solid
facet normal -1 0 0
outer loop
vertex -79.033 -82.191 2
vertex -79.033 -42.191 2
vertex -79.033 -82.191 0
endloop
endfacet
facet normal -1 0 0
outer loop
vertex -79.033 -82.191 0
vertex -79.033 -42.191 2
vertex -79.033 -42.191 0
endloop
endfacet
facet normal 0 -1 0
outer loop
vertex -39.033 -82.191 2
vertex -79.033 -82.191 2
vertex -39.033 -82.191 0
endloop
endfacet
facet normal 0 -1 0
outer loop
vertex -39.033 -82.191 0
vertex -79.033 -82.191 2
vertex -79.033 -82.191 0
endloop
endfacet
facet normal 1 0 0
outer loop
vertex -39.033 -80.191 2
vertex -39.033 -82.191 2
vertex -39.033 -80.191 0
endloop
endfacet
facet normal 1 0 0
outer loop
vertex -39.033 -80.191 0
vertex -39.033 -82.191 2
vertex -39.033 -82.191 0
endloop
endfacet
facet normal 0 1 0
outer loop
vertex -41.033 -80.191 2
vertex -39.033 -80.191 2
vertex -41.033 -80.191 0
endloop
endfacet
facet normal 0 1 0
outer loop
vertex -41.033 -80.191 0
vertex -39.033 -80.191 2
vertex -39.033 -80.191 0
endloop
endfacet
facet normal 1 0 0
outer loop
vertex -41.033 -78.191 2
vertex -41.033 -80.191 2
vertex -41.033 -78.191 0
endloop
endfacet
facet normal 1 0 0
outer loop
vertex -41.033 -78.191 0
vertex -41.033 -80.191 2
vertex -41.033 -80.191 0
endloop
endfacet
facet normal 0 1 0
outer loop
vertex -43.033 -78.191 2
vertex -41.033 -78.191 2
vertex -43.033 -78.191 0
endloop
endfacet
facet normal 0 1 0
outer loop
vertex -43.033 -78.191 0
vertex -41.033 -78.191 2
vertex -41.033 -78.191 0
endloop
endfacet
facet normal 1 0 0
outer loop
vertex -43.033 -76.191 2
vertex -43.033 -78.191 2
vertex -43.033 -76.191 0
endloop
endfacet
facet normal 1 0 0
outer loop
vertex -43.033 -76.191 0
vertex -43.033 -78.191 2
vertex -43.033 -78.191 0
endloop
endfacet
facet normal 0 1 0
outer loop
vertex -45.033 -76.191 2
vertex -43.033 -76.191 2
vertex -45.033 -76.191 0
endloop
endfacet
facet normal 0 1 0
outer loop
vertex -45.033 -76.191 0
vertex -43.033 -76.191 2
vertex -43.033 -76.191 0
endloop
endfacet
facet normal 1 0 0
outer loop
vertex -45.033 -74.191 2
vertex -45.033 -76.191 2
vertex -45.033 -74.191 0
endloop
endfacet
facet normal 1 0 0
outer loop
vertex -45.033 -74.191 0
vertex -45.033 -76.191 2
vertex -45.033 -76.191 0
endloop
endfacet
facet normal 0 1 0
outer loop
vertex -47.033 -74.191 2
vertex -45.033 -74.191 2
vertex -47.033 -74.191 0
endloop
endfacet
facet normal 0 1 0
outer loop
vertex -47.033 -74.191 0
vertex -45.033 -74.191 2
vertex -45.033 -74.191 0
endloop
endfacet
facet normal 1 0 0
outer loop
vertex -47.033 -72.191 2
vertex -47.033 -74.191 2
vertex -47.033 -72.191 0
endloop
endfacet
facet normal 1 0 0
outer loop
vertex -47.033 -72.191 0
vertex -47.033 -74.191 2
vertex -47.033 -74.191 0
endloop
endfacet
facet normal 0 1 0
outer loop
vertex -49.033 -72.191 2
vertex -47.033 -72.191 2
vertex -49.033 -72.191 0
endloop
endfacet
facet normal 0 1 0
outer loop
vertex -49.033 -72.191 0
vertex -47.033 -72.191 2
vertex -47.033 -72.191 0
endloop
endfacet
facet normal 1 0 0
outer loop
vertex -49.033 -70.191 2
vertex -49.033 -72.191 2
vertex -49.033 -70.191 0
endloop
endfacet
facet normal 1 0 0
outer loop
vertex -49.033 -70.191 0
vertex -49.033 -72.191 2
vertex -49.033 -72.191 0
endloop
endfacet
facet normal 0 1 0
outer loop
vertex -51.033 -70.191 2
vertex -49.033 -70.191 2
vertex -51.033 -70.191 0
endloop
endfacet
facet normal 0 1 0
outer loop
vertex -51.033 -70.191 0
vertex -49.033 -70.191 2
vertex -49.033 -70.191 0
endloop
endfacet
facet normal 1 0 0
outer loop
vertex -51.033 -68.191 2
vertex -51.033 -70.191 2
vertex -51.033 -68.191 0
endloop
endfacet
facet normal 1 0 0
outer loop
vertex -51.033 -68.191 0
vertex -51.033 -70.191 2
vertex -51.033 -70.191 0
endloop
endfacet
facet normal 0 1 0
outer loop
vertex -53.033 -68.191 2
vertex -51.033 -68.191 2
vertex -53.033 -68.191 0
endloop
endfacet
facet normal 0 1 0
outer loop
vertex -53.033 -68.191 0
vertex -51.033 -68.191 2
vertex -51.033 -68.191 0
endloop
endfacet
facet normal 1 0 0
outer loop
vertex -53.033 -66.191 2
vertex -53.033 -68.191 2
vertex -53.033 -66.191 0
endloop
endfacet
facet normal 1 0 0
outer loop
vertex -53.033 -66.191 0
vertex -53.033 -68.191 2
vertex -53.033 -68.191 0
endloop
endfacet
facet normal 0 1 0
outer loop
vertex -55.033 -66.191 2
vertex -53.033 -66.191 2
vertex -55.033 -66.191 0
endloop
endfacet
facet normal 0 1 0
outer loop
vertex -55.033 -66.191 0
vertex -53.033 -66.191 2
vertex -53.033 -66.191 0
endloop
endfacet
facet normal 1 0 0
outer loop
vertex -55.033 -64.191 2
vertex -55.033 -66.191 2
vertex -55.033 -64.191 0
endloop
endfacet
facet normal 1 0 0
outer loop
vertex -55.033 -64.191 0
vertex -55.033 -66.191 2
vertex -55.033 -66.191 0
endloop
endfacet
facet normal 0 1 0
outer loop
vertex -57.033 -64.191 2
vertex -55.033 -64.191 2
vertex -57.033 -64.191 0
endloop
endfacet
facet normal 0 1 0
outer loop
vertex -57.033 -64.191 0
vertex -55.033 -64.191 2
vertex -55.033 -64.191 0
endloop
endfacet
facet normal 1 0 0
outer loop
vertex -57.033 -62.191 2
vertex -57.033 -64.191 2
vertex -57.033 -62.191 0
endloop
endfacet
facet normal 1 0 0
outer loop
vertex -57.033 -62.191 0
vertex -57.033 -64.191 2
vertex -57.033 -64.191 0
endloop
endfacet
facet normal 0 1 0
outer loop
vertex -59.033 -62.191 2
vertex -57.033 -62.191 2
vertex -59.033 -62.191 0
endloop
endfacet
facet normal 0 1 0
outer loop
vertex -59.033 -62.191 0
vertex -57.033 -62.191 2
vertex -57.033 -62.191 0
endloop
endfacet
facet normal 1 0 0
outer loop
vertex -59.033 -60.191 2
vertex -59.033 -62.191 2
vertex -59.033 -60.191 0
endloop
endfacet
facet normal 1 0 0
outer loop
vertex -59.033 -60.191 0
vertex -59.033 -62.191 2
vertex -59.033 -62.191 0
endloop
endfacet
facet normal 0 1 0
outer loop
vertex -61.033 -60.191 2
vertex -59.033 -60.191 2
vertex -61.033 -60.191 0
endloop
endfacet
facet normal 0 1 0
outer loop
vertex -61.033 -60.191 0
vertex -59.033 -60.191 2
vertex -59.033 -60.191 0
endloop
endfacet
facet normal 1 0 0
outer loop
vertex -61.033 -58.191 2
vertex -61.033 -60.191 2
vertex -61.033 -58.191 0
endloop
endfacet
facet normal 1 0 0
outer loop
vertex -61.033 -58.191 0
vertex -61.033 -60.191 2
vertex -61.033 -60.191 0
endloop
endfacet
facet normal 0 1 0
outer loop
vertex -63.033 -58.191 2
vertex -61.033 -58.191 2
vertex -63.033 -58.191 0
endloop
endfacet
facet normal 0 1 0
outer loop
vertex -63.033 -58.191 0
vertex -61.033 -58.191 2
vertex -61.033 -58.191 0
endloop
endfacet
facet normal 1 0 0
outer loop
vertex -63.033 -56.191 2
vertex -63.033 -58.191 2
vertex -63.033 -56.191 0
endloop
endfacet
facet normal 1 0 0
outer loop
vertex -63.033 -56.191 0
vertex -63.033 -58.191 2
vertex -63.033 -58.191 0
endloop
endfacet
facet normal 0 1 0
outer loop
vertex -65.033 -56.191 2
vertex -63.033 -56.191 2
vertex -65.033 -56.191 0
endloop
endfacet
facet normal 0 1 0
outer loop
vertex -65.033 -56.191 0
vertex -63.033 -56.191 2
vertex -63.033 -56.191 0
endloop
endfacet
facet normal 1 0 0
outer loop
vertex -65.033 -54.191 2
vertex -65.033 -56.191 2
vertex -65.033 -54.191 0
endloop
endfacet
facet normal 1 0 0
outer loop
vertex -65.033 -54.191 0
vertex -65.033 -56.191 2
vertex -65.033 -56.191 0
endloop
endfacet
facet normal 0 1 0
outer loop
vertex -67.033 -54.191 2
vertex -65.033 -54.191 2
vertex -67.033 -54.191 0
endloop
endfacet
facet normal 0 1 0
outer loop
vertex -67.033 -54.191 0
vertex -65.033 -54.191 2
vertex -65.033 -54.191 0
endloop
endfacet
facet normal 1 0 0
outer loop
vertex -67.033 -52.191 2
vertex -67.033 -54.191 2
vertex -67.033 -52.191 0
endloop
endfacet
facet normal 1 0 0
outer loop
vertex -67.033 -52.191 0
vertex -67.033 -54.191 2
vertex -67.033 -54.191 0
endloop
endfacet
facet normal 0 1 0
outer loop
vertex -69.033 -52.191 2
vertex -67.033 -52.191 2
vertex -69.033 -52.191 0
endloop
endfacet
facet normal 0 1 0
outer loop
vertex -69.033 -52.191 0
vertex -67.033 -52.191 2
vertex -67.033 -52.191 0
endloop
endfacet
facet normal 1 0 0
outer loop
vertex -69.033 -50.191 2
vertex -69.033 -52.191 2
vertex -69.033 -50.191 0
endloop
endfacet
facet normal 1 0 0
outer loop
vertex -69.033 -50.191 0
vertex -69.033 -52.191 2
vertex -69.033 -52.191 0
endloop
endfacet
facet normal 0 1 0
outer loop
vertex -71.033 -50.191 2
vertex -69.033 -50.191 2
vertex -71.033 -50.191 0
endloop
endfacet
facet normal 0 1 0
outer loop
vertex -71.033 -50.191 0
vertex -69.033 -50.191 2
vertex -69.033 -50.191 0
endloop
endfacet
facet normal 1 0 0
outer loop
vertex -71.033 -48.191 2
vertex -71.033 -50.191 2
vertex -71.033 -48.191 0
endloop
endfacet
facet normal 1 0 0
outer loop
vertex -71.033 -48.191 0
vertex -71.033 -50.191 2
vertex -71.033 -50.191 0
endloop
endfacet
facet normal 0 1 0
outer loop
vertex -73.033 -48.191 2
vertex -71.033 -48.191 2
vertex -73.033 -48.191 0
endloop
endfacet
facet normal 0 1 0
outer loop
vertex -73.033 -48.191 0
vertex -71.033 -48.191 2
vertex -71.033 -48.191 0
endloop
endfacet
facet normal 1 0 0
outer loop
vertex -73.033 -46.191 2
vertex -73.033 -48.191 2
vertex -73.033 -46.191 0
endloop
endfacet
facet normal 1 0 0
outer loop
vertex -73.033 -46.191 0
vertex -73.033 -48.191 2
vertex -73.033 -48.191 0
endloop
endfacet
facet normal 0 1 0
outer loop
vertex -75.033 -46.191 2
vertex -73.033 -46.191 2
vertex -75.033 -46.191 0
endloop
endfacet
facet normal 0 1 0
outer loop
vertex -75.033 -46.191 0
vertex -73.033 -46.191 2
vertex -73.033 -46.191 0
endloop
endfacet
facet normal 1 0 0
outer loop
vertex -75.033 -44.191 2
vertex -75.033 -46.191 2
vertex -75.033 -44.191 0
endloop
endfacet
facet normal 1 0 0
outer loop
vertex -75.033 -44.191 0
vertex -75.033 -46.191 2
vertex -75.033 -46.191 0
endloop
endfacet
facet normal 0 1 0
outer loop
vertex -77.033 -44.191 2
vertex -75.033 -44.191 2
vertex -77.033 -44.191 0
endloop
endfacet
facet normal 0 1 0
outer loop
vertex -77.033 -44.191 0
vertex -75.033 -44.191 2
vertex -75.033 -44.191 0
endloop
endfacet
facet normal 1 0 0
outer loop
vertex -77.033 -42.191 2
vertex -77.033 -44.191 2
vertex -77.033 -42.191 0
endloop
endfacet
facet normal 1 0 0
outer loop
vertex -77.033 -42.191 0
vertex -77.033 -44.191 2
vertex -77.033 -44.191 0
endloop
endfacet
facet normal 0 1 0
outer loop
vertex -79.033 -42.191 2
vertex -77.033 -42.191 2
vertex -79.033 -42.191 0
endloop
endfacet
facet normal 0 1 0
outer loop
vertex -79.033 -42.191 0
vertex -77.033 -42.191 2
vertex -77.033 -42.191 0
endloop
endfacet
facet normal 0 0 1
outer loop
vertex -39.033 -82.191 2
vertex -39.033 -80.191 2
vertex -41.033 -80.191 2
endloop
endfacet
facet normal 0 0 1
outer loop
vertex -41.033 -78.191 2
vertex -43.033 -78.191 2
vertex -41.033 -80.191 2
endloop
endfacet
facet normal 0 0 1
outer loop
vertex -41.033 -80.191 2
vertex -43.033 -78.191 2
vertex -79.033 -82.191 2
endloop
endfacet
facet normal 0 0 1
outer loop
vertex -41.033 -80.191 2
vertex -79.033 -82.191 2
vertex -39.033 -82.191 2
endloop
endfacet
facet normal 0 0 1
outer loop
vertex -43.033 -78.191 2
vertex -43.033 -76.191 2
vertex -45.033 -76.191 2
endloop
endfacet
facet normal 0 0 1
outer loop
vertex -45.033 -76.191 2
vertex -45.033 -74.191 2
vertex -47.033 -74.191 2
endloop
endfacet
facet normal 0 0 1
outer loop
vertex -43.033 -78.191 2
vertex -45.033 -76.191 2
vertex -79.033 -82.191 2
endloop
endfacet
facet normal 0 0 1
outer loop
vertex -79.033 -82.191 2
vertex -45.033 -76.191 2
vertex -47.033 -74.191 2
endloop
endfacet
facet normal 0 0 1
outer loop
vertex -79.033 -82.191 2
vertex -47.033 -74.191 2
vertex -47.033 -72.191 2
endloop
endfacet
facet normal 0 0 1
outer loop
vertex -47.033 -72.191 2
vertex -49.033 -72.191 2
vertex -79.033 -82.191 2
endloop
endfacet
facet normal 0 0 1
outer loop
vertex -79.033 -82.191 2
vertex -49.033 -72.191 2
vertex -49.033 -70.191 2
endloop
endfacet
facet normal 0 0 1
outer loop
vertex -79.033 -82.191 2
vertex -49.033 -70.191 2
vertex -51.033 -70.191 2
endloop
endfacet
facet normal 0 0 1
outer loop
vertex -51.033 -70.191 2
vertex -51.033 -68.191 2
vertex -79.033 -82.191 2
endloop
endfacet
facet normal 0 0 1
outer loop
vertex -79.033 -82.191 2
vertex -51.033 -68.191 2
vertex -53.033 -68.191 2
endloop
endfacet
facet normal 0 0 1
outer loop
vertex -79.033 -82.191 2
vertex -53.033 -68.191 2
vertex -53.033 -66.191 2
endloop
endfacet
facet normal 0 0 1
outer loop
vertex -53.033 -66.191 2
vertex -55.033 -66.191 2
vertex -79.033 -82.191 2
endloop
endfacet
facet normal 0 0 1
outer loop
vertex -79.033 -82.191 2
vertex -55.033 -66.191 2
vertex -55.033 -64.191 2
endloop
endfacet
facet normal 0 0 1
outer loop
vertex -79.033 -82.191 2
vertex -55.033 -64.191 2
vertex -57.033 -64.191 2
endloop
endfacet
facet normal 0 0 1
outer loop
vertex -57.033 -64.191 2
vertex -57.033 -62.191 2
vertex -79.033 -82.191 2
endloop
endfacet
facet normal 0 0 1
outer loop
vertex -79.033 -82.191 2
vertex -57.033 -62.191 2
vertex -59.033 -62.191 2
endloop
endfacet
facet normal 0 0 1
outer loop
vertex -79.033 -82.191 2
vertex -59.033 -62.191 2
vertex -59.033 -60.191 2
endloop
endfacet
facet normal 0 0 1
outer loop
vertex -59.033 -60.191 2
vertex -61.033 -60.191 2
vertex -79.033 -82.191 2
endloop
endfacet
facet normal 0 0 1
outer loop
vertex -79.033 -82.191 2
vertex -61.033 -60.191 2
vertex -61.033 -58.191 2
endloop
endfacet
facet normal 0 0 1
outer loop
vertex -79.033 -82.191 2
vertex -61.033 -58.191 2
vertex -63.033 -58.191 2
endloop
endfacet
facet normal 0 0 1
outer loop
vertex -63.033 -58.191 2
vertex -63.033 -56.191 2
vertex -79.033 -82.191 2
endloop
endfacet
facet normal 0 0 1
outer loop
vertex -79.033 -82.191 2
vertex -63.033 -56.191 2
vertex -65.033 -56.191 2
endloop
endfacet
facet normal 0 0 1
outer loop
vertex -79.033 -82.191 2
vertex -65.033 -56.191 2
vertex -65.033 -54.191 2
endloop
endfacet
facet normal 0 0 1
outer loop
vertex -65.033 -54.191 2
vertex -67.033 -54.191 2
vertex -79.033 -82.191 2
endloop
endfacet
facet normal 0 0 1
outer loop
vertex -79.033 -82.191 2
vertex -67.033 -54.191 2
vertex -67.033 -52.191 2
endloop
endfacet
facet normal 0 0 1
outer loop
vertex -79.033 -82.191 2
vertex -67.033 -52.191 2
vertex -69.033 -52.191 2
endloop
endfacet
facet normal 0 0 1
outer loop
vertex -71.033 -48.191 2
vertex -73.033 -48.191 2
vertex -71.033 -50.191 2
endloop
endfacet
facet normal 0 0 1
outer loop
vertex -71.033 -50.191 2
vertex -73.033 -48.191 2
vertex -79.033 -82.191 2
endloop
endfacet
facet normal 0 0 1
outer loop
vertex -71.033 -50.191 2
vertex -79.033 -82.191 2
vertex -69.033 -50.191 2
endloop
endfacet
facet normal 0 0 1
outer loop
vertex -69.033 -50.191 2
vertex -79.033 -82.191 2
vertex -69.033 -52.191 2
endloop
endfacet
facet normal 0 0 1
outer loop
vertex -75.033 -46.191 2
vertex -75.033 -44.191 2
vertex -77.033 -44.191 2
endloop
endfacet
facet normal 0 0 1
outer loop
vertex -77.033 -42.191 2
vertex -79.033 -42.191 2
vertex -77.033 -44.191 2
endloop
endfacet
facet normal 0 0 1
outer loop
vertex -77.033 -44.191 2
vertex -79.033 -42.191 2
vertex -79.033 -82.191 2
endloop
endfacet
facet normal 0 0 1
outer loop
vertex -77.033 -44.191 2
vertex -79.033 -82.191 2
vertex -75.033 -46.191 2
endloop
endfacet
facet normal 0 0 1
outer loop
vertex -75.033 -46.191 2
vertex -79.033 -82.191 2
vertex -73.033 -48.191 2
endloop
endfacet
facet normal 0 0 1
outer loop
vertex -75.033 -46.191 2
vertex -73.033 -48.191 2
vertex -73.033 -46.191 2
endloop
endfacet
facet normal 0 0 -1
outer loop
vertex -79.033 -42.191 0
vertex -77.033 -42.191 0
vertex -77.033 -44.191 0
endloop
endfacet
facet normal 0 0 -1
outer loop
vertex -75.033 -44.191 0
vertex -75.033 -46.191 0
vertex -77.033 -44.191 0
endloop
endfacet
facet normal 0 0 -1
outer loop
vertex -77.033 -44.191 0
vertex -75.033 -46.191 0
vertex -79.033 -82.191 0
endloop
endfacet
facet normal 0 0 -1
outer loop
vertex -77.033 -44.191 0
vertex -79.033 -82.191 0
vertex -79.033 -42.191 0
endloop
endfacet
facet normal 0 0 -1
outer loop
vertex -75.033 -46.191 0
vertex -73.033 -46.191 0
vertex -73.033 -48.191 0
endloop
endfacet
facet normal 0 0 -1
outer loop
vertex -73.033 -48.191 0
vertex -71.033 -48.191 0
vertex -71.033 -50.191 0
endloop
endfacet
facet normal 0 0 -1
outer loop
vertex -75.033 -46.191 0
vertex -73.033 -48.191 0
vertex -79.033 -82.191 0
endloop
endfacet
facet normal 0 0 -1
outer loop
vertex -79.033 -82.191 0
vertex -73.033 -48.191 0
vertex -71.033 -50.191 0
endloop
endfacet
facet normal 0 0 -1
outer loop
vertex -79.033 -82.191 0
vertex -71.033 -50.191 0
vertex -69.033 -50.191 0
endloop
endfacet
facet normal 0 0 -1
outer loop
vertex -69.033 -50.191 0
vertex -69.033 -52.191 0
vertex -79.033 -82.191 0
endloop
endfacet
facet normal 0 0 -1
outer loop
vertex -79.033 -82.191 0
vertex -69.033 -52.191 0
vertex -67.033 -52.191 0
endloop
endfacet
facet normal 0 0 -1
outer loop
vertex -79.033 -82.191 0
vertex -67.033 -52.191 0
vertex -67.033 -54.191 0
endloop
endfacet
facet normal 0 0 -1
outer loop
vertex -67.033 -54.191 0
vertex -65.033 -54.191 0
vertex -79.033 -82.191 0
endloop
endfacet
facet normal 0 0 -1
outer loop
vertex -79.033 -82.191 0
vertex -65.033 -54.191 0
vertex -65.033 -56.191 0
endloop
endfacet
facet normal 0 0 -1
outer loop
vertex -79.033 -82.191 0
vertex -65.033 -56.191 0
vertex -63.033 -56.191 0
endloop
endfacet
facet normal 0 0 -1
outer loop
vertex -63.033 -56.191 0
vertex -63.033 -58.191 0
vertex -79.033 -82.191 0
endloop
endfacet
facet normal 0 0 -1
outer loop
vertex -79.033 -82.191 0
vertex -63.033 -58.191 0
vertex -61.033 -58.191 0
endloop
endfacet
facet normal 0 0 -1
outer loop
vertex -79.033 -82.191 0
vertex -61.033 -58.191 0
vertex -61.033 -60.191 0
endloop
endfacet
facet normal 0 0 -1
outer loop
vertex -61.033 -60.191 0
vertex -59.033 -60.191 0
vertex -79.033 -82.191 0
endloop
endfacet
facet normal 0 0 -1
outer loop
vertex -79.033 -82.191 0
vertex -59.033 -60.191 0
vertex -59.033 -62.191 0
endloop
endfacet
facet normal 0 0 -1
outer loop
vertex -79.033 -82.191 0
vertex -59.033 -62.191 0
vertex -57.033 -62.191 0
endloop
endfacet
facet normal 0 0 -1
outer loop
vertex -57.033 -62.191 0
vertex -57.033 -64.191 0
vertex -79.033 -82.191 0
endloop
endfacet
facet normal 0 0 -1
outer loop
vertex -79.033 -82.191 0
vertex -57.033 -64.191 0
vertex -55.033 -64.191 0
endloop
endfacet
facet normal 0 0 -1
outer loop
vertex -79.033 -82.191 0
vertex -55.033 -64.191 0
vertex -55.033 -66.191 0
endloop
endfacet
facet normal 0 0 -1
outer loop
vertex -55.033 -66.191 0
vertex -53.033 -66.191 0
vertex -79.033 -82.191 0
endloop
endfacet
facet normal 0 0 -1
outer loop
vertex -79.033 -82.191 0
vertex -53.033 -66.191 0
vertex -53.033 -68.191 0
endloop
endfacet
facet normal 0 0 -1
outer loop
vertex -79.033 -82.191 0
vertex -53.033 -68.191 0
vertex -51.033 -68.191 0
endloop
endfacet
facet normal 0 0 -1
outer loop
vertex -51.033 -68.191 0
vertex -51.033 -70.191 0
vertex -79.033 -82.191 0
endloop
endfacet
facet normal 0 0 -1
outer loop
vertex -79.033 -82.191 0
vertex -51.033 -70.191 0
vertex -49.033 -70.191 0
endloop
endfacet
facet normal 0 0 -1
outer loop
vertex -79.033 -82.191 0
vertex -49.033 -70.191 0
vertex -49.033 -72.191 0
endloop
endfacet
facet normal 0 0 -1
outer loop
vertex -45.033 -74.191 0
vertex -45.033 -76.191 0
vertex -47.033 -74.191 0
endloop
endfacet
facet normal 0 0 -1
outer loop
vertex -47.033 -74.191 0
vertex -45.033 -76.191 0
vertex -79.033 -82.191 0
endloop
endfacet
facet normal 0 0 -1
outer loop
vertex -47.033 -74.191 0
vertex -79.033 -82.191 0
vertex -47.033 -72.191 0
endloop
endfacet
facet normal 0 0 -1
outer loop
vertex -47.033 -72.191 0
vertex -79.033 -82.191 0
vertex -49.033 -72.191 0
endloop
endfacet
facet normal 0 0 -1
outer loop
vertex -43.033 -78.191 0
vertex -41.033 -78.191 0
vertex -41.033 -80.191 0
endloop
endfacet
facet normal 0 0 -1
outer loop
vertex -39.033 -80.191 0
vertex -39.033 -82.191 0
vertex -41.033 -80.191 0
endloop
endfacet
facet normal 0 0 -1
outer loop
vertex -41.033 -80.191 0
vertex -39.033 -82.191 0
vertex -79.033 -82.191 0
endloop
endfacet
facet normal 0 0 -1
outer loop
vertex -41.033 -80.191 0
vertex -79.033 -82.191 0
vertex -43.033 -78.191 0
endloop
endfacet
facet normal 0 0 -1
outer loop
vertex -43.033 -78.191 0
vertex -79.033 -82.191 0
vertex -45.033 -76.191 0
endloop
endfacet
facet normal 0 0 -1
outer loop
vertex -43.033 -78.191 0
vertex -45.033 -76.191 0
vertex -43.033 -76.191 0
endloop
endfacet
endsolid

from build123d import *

# Parameters (mm, degrees)
BOSS_EXTRUDE1_DEPTH = 2


with BuildPart() as part:
    # Sketch1 → Boss-Extrude1 (new body)
    with BuildSketch(Plane.XY):
        Polygon((-79.033423275, -42.190980898), (-77.033423275, -42.190980898), (-77.033423275, -44.190980898), (-75.033423275, -44.190980898), (-75.033423275, -46.190980898), (-73.033423275, -46.190980898), (-73.033423275, -48.190980898), (-71.033423275, -48.190980898), (-71.033423275, -50.190980898), (-69.033423275, -50.190980898), (-69.033423275, -52.190980898), (-67.033423275, -52.190980898), (-67.033423275, -54.190980898), (-65.033423275, -54.190980898), (-65.033423275, -56.190980898), (-63.033423275, -56.190980898), (-63.033423275, -58.190980898), (-61.033423275, -58.190980898), (-61.033423275, -60.190980898), (-59.033423275, -60.190980898), (-59.033423275, -62.190980898), (-57.033423275, -62.190980898), (-57.033423275, -64.190980898), (-55.033423275, -64.190980898), (-55.033423275, -66.190980898), (-53.033423275, -66.190980898), (-53.033423275, -68.190980898), (-51.033423275, -68.190980898), (-51.033423275, -70.190980898), (-49.033423275, -70.190980898), (-49.033423275, -72.190980898), (-47.033423275, -72.190980898), (-47.033423275, -74.190980898), (-45.033423275, -74.190980898), (-45.033423275, -76.190980898), (-43.033423275, -76.190980898), (-43.033423275, -78.190980898), (-41.033423275, -78.190980898), (-41.033423275, -80.190980898), (-39.033423275, -80.190980898), (-39.033423275, -82.190980898), (-79.033423275, -82.190980898), (-79.033423275, -80.190980898), (-79.033423275, -78.190980898), (-79.033423275, -76.190980898), (-79.033423275, -74.190980898), (-79.033423275, -72.190980898), (-79.033423275, -70.190980898), (-79.033423275, -68.190980898), (-79.033423275, -66.190980898), (-79.033423275, -64.190980898), (-79.033423275, -62.190980898), (-79.033423275, -60.190980898), (-79.033423275, -58.190980898), (-79.033423275, -56.190980898), (-79.033423275, -54.190980898), (-79.033423275, -52.190980898), (-79.033423275, -50.190980898), (-79.033423275, -48.190980898), (-79.033423275, -46.190980898), (-79.033423275, -44.190980898), align=None)
    extrude(amount=BOSS_EXTRUDE1_DEPTH)


solid = part.part
